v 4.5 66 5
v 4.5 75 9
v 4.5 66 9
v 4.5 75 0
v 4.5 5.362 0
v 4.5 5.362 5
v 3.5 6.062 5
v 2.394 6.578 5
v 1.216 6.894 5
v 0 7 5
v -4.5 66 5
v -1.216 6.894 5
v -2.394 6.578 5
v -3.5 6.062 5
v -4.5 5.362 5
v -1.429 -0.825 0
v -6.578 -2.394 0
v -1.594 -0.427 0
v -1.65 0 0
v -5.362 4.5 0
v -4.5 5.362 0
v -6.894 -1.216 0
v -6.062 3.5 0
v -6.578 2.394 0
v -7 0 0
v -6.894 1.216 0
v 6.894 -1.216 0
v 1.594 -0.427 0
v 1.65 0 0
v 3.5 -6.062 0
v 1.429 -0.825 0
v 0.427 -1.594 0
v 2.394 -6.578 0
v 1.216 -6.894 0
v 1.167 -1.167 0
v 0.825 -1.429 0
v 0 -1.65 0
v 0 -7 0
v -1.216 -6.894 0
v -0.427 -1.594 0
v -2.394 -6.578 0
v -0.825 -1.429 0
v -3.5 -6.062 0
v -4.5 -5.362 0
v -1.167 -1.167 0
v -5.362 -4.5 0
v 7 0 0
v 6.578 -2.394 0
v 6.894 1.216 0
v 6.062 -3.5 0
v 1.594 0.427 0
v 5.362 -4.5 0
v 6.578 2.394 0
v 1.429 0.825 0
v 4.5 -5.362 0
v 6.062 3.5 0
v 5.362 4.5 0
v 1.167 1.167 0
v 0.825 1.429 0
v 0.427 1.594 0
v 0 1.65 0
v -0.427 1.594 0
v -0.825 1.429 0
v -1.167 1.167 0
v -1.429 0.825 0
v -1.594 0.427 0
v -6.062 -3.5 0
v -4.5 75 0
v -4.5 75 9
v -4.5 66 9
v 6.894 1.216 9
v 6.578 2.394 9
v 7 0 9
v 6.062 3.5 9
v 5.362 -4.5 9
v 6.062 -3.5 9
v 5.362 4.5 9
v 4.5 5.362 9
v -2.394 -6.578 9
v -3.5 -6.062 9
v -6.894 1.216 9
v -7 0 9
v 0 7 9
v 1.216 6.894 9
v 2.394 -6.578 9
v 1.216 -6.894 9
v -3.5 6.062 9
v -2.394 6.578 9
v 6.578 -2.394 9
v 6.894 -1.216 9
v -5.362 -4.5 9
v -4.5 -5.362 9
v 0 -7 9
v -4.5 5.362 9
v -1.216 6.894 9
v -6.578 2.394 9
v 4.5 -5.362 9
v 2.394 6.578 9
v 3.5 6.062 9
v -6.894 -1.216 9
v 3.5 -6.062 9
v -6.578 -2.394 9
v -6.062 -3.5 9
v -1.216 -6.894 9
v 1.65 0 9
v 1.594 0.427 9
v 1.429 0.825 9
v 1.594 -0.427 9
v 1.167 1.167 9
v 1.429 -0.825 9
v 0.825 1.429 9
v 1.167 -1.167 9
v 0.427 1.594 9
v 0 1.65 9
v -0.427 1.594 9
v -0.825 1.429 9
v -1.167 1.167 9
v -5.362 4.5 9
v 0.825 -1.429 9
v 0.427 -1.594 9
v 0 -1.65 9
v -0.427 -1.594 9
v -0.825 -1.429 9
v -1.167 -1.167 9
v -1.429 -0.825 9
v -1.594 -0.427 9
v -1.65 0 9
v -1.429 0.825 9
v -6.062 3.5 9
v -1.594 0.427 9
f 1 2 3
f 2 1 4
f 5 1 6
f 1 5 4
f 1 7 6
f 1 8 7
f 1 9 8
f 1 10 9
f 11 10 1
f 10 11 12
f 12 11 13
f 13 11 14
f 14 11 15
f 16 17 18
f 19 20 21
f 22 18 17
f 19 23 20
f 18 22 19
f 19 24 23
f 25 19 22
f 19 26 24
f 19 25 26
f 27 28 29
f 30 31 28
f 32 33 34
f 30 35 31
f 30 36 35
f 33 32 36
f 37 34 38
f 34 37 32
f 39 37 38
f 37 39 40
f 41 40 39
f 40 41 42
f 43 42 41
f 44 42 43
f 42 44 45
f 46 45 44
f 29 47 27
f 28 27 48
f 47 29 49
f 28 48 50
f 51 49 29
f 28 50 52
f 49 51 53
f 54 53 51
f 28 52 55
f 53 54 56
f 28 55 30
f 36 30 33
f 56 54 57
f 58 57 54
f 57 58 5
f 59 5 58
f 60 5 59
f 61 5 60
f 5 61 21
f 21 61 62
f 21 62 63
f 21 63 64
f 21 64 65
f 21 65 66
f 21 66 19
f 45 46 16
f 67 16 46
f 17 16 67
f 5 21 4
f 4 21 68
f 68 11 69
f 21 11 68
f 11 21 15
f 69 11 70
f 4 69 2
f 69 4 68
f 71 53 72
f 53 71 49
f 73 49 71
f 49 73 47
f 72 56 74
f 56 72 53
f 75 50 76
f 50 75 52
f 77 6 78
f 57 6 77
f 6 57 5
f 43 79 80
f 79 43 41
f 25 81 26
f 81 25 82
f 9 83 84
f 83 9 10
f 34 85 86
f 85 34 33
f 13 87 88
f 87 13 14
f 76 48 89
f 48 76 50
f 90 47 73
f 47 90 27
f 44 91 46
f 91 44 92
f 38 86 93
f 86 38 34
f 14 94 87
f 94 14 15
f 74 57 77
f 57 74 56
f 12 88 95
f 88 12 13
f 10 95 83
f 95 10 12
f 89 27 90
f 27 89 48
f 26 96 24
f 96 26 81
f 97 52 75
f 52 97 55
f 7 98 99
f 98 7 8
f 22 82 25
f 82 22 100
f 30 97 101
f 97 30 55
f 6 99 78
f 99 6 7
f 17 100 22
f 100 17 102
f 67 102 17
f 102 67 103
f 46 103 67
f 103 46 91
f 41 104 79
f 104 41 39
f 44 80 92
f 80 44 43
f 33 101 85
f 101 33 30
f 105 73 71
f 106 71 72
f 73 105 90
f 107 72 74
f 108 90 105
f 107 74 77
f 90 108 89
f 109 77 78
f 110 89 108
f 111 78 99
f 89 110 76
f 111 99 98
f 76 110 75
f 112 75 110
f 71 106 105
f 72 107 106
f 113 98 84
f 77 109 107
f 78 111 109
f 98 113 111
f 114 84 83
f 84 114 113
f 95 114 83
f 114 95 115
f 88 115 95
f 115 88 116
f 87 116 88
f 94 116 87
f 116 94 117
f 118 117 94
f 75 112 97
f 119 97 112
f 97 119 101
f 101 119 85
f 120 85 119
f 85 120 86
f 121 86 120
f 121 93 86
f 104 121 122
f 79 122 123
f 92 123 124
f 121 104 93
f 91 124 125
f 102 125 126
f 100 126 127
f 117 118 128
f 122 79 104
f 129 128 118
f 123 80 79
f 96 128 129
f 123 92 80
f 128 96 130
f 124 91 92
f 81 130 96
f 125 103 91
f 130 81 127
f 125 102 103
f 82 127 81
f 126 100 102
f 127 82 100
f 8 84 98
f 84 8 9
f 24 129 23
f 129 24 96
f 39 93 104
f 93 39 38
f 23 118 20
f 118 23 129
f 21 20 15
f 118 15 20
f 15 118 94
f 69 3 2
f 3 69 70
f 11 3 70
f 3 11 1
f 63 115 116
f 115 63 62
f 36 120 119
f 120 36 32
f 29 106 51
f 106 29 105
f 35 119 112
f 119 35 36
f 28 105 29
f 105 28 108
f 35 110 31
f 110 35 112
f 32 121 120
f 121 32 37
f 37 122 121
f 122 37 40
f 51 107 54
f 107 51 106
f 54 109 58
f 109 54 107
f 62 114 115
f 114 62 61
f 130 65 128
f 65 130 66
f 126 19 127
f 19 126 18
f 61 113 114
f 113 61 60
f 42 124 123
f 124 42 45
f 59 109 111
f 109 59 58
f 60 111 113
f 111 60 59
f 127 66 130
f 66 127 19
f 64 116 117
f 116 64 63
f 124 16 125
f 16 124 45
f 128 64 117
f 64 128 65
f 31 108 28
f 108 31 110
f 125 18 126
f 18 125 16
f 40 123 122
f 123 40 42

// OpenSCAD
// ============================================================
//  N20 Motor Lever Arm — SEPARATE PRINT
//  Print this file flat on the build plate.
//
//  Attaches to the 3mm output shaft of the N20 motor.
//  The tip bump makes the arm clearly visible in demo video.
//
//  Print settings: 0.2mm layer, 40% infill, PETG or PLA
// ============================================================

shaft_diameter  = 3.0;
tolerance       = 0.3;
lever_length    = 75.0;   // tip to shaft center
lever_width     = 9.0;
lever_thickness = 5.0;
hub_r           = lever_width / 2 + 2.5;

difference() {
    union() {
        // Main arm
        translate([-lever_width / 2, 0, 0])
            cube([lever_width, lever_length, lever_thickness]);

        // Hub reinforcement around shaft
        cylinder(h = lever_thickness + 4, r = hub_r, $fn = 36);

        // Tip bump — visually distinct end for demo video
        translate([-lever_width / 2, lever_length - lever_width, 0])
            cube([lever_width, lever_width, lever_thickness + 4]);
    }

    // Shaft press-fit hole
    translate([0, 0, -0.1])
        cylinder(h = lever_thickness + 4.2, r = (shaft_diameter + tolerance) / 2, $fn = 24);

    // M2 set-screw hole through hub side (optional — for extra grip on shaft)
    translate([hub_r + 0.1, 0, (lever_thickness + 4) / 2])
        rotate([0, 90, 0])
            cylinder(h = hub_r * 2 + 0.2, r = 1.1, $fn = 16);
}
